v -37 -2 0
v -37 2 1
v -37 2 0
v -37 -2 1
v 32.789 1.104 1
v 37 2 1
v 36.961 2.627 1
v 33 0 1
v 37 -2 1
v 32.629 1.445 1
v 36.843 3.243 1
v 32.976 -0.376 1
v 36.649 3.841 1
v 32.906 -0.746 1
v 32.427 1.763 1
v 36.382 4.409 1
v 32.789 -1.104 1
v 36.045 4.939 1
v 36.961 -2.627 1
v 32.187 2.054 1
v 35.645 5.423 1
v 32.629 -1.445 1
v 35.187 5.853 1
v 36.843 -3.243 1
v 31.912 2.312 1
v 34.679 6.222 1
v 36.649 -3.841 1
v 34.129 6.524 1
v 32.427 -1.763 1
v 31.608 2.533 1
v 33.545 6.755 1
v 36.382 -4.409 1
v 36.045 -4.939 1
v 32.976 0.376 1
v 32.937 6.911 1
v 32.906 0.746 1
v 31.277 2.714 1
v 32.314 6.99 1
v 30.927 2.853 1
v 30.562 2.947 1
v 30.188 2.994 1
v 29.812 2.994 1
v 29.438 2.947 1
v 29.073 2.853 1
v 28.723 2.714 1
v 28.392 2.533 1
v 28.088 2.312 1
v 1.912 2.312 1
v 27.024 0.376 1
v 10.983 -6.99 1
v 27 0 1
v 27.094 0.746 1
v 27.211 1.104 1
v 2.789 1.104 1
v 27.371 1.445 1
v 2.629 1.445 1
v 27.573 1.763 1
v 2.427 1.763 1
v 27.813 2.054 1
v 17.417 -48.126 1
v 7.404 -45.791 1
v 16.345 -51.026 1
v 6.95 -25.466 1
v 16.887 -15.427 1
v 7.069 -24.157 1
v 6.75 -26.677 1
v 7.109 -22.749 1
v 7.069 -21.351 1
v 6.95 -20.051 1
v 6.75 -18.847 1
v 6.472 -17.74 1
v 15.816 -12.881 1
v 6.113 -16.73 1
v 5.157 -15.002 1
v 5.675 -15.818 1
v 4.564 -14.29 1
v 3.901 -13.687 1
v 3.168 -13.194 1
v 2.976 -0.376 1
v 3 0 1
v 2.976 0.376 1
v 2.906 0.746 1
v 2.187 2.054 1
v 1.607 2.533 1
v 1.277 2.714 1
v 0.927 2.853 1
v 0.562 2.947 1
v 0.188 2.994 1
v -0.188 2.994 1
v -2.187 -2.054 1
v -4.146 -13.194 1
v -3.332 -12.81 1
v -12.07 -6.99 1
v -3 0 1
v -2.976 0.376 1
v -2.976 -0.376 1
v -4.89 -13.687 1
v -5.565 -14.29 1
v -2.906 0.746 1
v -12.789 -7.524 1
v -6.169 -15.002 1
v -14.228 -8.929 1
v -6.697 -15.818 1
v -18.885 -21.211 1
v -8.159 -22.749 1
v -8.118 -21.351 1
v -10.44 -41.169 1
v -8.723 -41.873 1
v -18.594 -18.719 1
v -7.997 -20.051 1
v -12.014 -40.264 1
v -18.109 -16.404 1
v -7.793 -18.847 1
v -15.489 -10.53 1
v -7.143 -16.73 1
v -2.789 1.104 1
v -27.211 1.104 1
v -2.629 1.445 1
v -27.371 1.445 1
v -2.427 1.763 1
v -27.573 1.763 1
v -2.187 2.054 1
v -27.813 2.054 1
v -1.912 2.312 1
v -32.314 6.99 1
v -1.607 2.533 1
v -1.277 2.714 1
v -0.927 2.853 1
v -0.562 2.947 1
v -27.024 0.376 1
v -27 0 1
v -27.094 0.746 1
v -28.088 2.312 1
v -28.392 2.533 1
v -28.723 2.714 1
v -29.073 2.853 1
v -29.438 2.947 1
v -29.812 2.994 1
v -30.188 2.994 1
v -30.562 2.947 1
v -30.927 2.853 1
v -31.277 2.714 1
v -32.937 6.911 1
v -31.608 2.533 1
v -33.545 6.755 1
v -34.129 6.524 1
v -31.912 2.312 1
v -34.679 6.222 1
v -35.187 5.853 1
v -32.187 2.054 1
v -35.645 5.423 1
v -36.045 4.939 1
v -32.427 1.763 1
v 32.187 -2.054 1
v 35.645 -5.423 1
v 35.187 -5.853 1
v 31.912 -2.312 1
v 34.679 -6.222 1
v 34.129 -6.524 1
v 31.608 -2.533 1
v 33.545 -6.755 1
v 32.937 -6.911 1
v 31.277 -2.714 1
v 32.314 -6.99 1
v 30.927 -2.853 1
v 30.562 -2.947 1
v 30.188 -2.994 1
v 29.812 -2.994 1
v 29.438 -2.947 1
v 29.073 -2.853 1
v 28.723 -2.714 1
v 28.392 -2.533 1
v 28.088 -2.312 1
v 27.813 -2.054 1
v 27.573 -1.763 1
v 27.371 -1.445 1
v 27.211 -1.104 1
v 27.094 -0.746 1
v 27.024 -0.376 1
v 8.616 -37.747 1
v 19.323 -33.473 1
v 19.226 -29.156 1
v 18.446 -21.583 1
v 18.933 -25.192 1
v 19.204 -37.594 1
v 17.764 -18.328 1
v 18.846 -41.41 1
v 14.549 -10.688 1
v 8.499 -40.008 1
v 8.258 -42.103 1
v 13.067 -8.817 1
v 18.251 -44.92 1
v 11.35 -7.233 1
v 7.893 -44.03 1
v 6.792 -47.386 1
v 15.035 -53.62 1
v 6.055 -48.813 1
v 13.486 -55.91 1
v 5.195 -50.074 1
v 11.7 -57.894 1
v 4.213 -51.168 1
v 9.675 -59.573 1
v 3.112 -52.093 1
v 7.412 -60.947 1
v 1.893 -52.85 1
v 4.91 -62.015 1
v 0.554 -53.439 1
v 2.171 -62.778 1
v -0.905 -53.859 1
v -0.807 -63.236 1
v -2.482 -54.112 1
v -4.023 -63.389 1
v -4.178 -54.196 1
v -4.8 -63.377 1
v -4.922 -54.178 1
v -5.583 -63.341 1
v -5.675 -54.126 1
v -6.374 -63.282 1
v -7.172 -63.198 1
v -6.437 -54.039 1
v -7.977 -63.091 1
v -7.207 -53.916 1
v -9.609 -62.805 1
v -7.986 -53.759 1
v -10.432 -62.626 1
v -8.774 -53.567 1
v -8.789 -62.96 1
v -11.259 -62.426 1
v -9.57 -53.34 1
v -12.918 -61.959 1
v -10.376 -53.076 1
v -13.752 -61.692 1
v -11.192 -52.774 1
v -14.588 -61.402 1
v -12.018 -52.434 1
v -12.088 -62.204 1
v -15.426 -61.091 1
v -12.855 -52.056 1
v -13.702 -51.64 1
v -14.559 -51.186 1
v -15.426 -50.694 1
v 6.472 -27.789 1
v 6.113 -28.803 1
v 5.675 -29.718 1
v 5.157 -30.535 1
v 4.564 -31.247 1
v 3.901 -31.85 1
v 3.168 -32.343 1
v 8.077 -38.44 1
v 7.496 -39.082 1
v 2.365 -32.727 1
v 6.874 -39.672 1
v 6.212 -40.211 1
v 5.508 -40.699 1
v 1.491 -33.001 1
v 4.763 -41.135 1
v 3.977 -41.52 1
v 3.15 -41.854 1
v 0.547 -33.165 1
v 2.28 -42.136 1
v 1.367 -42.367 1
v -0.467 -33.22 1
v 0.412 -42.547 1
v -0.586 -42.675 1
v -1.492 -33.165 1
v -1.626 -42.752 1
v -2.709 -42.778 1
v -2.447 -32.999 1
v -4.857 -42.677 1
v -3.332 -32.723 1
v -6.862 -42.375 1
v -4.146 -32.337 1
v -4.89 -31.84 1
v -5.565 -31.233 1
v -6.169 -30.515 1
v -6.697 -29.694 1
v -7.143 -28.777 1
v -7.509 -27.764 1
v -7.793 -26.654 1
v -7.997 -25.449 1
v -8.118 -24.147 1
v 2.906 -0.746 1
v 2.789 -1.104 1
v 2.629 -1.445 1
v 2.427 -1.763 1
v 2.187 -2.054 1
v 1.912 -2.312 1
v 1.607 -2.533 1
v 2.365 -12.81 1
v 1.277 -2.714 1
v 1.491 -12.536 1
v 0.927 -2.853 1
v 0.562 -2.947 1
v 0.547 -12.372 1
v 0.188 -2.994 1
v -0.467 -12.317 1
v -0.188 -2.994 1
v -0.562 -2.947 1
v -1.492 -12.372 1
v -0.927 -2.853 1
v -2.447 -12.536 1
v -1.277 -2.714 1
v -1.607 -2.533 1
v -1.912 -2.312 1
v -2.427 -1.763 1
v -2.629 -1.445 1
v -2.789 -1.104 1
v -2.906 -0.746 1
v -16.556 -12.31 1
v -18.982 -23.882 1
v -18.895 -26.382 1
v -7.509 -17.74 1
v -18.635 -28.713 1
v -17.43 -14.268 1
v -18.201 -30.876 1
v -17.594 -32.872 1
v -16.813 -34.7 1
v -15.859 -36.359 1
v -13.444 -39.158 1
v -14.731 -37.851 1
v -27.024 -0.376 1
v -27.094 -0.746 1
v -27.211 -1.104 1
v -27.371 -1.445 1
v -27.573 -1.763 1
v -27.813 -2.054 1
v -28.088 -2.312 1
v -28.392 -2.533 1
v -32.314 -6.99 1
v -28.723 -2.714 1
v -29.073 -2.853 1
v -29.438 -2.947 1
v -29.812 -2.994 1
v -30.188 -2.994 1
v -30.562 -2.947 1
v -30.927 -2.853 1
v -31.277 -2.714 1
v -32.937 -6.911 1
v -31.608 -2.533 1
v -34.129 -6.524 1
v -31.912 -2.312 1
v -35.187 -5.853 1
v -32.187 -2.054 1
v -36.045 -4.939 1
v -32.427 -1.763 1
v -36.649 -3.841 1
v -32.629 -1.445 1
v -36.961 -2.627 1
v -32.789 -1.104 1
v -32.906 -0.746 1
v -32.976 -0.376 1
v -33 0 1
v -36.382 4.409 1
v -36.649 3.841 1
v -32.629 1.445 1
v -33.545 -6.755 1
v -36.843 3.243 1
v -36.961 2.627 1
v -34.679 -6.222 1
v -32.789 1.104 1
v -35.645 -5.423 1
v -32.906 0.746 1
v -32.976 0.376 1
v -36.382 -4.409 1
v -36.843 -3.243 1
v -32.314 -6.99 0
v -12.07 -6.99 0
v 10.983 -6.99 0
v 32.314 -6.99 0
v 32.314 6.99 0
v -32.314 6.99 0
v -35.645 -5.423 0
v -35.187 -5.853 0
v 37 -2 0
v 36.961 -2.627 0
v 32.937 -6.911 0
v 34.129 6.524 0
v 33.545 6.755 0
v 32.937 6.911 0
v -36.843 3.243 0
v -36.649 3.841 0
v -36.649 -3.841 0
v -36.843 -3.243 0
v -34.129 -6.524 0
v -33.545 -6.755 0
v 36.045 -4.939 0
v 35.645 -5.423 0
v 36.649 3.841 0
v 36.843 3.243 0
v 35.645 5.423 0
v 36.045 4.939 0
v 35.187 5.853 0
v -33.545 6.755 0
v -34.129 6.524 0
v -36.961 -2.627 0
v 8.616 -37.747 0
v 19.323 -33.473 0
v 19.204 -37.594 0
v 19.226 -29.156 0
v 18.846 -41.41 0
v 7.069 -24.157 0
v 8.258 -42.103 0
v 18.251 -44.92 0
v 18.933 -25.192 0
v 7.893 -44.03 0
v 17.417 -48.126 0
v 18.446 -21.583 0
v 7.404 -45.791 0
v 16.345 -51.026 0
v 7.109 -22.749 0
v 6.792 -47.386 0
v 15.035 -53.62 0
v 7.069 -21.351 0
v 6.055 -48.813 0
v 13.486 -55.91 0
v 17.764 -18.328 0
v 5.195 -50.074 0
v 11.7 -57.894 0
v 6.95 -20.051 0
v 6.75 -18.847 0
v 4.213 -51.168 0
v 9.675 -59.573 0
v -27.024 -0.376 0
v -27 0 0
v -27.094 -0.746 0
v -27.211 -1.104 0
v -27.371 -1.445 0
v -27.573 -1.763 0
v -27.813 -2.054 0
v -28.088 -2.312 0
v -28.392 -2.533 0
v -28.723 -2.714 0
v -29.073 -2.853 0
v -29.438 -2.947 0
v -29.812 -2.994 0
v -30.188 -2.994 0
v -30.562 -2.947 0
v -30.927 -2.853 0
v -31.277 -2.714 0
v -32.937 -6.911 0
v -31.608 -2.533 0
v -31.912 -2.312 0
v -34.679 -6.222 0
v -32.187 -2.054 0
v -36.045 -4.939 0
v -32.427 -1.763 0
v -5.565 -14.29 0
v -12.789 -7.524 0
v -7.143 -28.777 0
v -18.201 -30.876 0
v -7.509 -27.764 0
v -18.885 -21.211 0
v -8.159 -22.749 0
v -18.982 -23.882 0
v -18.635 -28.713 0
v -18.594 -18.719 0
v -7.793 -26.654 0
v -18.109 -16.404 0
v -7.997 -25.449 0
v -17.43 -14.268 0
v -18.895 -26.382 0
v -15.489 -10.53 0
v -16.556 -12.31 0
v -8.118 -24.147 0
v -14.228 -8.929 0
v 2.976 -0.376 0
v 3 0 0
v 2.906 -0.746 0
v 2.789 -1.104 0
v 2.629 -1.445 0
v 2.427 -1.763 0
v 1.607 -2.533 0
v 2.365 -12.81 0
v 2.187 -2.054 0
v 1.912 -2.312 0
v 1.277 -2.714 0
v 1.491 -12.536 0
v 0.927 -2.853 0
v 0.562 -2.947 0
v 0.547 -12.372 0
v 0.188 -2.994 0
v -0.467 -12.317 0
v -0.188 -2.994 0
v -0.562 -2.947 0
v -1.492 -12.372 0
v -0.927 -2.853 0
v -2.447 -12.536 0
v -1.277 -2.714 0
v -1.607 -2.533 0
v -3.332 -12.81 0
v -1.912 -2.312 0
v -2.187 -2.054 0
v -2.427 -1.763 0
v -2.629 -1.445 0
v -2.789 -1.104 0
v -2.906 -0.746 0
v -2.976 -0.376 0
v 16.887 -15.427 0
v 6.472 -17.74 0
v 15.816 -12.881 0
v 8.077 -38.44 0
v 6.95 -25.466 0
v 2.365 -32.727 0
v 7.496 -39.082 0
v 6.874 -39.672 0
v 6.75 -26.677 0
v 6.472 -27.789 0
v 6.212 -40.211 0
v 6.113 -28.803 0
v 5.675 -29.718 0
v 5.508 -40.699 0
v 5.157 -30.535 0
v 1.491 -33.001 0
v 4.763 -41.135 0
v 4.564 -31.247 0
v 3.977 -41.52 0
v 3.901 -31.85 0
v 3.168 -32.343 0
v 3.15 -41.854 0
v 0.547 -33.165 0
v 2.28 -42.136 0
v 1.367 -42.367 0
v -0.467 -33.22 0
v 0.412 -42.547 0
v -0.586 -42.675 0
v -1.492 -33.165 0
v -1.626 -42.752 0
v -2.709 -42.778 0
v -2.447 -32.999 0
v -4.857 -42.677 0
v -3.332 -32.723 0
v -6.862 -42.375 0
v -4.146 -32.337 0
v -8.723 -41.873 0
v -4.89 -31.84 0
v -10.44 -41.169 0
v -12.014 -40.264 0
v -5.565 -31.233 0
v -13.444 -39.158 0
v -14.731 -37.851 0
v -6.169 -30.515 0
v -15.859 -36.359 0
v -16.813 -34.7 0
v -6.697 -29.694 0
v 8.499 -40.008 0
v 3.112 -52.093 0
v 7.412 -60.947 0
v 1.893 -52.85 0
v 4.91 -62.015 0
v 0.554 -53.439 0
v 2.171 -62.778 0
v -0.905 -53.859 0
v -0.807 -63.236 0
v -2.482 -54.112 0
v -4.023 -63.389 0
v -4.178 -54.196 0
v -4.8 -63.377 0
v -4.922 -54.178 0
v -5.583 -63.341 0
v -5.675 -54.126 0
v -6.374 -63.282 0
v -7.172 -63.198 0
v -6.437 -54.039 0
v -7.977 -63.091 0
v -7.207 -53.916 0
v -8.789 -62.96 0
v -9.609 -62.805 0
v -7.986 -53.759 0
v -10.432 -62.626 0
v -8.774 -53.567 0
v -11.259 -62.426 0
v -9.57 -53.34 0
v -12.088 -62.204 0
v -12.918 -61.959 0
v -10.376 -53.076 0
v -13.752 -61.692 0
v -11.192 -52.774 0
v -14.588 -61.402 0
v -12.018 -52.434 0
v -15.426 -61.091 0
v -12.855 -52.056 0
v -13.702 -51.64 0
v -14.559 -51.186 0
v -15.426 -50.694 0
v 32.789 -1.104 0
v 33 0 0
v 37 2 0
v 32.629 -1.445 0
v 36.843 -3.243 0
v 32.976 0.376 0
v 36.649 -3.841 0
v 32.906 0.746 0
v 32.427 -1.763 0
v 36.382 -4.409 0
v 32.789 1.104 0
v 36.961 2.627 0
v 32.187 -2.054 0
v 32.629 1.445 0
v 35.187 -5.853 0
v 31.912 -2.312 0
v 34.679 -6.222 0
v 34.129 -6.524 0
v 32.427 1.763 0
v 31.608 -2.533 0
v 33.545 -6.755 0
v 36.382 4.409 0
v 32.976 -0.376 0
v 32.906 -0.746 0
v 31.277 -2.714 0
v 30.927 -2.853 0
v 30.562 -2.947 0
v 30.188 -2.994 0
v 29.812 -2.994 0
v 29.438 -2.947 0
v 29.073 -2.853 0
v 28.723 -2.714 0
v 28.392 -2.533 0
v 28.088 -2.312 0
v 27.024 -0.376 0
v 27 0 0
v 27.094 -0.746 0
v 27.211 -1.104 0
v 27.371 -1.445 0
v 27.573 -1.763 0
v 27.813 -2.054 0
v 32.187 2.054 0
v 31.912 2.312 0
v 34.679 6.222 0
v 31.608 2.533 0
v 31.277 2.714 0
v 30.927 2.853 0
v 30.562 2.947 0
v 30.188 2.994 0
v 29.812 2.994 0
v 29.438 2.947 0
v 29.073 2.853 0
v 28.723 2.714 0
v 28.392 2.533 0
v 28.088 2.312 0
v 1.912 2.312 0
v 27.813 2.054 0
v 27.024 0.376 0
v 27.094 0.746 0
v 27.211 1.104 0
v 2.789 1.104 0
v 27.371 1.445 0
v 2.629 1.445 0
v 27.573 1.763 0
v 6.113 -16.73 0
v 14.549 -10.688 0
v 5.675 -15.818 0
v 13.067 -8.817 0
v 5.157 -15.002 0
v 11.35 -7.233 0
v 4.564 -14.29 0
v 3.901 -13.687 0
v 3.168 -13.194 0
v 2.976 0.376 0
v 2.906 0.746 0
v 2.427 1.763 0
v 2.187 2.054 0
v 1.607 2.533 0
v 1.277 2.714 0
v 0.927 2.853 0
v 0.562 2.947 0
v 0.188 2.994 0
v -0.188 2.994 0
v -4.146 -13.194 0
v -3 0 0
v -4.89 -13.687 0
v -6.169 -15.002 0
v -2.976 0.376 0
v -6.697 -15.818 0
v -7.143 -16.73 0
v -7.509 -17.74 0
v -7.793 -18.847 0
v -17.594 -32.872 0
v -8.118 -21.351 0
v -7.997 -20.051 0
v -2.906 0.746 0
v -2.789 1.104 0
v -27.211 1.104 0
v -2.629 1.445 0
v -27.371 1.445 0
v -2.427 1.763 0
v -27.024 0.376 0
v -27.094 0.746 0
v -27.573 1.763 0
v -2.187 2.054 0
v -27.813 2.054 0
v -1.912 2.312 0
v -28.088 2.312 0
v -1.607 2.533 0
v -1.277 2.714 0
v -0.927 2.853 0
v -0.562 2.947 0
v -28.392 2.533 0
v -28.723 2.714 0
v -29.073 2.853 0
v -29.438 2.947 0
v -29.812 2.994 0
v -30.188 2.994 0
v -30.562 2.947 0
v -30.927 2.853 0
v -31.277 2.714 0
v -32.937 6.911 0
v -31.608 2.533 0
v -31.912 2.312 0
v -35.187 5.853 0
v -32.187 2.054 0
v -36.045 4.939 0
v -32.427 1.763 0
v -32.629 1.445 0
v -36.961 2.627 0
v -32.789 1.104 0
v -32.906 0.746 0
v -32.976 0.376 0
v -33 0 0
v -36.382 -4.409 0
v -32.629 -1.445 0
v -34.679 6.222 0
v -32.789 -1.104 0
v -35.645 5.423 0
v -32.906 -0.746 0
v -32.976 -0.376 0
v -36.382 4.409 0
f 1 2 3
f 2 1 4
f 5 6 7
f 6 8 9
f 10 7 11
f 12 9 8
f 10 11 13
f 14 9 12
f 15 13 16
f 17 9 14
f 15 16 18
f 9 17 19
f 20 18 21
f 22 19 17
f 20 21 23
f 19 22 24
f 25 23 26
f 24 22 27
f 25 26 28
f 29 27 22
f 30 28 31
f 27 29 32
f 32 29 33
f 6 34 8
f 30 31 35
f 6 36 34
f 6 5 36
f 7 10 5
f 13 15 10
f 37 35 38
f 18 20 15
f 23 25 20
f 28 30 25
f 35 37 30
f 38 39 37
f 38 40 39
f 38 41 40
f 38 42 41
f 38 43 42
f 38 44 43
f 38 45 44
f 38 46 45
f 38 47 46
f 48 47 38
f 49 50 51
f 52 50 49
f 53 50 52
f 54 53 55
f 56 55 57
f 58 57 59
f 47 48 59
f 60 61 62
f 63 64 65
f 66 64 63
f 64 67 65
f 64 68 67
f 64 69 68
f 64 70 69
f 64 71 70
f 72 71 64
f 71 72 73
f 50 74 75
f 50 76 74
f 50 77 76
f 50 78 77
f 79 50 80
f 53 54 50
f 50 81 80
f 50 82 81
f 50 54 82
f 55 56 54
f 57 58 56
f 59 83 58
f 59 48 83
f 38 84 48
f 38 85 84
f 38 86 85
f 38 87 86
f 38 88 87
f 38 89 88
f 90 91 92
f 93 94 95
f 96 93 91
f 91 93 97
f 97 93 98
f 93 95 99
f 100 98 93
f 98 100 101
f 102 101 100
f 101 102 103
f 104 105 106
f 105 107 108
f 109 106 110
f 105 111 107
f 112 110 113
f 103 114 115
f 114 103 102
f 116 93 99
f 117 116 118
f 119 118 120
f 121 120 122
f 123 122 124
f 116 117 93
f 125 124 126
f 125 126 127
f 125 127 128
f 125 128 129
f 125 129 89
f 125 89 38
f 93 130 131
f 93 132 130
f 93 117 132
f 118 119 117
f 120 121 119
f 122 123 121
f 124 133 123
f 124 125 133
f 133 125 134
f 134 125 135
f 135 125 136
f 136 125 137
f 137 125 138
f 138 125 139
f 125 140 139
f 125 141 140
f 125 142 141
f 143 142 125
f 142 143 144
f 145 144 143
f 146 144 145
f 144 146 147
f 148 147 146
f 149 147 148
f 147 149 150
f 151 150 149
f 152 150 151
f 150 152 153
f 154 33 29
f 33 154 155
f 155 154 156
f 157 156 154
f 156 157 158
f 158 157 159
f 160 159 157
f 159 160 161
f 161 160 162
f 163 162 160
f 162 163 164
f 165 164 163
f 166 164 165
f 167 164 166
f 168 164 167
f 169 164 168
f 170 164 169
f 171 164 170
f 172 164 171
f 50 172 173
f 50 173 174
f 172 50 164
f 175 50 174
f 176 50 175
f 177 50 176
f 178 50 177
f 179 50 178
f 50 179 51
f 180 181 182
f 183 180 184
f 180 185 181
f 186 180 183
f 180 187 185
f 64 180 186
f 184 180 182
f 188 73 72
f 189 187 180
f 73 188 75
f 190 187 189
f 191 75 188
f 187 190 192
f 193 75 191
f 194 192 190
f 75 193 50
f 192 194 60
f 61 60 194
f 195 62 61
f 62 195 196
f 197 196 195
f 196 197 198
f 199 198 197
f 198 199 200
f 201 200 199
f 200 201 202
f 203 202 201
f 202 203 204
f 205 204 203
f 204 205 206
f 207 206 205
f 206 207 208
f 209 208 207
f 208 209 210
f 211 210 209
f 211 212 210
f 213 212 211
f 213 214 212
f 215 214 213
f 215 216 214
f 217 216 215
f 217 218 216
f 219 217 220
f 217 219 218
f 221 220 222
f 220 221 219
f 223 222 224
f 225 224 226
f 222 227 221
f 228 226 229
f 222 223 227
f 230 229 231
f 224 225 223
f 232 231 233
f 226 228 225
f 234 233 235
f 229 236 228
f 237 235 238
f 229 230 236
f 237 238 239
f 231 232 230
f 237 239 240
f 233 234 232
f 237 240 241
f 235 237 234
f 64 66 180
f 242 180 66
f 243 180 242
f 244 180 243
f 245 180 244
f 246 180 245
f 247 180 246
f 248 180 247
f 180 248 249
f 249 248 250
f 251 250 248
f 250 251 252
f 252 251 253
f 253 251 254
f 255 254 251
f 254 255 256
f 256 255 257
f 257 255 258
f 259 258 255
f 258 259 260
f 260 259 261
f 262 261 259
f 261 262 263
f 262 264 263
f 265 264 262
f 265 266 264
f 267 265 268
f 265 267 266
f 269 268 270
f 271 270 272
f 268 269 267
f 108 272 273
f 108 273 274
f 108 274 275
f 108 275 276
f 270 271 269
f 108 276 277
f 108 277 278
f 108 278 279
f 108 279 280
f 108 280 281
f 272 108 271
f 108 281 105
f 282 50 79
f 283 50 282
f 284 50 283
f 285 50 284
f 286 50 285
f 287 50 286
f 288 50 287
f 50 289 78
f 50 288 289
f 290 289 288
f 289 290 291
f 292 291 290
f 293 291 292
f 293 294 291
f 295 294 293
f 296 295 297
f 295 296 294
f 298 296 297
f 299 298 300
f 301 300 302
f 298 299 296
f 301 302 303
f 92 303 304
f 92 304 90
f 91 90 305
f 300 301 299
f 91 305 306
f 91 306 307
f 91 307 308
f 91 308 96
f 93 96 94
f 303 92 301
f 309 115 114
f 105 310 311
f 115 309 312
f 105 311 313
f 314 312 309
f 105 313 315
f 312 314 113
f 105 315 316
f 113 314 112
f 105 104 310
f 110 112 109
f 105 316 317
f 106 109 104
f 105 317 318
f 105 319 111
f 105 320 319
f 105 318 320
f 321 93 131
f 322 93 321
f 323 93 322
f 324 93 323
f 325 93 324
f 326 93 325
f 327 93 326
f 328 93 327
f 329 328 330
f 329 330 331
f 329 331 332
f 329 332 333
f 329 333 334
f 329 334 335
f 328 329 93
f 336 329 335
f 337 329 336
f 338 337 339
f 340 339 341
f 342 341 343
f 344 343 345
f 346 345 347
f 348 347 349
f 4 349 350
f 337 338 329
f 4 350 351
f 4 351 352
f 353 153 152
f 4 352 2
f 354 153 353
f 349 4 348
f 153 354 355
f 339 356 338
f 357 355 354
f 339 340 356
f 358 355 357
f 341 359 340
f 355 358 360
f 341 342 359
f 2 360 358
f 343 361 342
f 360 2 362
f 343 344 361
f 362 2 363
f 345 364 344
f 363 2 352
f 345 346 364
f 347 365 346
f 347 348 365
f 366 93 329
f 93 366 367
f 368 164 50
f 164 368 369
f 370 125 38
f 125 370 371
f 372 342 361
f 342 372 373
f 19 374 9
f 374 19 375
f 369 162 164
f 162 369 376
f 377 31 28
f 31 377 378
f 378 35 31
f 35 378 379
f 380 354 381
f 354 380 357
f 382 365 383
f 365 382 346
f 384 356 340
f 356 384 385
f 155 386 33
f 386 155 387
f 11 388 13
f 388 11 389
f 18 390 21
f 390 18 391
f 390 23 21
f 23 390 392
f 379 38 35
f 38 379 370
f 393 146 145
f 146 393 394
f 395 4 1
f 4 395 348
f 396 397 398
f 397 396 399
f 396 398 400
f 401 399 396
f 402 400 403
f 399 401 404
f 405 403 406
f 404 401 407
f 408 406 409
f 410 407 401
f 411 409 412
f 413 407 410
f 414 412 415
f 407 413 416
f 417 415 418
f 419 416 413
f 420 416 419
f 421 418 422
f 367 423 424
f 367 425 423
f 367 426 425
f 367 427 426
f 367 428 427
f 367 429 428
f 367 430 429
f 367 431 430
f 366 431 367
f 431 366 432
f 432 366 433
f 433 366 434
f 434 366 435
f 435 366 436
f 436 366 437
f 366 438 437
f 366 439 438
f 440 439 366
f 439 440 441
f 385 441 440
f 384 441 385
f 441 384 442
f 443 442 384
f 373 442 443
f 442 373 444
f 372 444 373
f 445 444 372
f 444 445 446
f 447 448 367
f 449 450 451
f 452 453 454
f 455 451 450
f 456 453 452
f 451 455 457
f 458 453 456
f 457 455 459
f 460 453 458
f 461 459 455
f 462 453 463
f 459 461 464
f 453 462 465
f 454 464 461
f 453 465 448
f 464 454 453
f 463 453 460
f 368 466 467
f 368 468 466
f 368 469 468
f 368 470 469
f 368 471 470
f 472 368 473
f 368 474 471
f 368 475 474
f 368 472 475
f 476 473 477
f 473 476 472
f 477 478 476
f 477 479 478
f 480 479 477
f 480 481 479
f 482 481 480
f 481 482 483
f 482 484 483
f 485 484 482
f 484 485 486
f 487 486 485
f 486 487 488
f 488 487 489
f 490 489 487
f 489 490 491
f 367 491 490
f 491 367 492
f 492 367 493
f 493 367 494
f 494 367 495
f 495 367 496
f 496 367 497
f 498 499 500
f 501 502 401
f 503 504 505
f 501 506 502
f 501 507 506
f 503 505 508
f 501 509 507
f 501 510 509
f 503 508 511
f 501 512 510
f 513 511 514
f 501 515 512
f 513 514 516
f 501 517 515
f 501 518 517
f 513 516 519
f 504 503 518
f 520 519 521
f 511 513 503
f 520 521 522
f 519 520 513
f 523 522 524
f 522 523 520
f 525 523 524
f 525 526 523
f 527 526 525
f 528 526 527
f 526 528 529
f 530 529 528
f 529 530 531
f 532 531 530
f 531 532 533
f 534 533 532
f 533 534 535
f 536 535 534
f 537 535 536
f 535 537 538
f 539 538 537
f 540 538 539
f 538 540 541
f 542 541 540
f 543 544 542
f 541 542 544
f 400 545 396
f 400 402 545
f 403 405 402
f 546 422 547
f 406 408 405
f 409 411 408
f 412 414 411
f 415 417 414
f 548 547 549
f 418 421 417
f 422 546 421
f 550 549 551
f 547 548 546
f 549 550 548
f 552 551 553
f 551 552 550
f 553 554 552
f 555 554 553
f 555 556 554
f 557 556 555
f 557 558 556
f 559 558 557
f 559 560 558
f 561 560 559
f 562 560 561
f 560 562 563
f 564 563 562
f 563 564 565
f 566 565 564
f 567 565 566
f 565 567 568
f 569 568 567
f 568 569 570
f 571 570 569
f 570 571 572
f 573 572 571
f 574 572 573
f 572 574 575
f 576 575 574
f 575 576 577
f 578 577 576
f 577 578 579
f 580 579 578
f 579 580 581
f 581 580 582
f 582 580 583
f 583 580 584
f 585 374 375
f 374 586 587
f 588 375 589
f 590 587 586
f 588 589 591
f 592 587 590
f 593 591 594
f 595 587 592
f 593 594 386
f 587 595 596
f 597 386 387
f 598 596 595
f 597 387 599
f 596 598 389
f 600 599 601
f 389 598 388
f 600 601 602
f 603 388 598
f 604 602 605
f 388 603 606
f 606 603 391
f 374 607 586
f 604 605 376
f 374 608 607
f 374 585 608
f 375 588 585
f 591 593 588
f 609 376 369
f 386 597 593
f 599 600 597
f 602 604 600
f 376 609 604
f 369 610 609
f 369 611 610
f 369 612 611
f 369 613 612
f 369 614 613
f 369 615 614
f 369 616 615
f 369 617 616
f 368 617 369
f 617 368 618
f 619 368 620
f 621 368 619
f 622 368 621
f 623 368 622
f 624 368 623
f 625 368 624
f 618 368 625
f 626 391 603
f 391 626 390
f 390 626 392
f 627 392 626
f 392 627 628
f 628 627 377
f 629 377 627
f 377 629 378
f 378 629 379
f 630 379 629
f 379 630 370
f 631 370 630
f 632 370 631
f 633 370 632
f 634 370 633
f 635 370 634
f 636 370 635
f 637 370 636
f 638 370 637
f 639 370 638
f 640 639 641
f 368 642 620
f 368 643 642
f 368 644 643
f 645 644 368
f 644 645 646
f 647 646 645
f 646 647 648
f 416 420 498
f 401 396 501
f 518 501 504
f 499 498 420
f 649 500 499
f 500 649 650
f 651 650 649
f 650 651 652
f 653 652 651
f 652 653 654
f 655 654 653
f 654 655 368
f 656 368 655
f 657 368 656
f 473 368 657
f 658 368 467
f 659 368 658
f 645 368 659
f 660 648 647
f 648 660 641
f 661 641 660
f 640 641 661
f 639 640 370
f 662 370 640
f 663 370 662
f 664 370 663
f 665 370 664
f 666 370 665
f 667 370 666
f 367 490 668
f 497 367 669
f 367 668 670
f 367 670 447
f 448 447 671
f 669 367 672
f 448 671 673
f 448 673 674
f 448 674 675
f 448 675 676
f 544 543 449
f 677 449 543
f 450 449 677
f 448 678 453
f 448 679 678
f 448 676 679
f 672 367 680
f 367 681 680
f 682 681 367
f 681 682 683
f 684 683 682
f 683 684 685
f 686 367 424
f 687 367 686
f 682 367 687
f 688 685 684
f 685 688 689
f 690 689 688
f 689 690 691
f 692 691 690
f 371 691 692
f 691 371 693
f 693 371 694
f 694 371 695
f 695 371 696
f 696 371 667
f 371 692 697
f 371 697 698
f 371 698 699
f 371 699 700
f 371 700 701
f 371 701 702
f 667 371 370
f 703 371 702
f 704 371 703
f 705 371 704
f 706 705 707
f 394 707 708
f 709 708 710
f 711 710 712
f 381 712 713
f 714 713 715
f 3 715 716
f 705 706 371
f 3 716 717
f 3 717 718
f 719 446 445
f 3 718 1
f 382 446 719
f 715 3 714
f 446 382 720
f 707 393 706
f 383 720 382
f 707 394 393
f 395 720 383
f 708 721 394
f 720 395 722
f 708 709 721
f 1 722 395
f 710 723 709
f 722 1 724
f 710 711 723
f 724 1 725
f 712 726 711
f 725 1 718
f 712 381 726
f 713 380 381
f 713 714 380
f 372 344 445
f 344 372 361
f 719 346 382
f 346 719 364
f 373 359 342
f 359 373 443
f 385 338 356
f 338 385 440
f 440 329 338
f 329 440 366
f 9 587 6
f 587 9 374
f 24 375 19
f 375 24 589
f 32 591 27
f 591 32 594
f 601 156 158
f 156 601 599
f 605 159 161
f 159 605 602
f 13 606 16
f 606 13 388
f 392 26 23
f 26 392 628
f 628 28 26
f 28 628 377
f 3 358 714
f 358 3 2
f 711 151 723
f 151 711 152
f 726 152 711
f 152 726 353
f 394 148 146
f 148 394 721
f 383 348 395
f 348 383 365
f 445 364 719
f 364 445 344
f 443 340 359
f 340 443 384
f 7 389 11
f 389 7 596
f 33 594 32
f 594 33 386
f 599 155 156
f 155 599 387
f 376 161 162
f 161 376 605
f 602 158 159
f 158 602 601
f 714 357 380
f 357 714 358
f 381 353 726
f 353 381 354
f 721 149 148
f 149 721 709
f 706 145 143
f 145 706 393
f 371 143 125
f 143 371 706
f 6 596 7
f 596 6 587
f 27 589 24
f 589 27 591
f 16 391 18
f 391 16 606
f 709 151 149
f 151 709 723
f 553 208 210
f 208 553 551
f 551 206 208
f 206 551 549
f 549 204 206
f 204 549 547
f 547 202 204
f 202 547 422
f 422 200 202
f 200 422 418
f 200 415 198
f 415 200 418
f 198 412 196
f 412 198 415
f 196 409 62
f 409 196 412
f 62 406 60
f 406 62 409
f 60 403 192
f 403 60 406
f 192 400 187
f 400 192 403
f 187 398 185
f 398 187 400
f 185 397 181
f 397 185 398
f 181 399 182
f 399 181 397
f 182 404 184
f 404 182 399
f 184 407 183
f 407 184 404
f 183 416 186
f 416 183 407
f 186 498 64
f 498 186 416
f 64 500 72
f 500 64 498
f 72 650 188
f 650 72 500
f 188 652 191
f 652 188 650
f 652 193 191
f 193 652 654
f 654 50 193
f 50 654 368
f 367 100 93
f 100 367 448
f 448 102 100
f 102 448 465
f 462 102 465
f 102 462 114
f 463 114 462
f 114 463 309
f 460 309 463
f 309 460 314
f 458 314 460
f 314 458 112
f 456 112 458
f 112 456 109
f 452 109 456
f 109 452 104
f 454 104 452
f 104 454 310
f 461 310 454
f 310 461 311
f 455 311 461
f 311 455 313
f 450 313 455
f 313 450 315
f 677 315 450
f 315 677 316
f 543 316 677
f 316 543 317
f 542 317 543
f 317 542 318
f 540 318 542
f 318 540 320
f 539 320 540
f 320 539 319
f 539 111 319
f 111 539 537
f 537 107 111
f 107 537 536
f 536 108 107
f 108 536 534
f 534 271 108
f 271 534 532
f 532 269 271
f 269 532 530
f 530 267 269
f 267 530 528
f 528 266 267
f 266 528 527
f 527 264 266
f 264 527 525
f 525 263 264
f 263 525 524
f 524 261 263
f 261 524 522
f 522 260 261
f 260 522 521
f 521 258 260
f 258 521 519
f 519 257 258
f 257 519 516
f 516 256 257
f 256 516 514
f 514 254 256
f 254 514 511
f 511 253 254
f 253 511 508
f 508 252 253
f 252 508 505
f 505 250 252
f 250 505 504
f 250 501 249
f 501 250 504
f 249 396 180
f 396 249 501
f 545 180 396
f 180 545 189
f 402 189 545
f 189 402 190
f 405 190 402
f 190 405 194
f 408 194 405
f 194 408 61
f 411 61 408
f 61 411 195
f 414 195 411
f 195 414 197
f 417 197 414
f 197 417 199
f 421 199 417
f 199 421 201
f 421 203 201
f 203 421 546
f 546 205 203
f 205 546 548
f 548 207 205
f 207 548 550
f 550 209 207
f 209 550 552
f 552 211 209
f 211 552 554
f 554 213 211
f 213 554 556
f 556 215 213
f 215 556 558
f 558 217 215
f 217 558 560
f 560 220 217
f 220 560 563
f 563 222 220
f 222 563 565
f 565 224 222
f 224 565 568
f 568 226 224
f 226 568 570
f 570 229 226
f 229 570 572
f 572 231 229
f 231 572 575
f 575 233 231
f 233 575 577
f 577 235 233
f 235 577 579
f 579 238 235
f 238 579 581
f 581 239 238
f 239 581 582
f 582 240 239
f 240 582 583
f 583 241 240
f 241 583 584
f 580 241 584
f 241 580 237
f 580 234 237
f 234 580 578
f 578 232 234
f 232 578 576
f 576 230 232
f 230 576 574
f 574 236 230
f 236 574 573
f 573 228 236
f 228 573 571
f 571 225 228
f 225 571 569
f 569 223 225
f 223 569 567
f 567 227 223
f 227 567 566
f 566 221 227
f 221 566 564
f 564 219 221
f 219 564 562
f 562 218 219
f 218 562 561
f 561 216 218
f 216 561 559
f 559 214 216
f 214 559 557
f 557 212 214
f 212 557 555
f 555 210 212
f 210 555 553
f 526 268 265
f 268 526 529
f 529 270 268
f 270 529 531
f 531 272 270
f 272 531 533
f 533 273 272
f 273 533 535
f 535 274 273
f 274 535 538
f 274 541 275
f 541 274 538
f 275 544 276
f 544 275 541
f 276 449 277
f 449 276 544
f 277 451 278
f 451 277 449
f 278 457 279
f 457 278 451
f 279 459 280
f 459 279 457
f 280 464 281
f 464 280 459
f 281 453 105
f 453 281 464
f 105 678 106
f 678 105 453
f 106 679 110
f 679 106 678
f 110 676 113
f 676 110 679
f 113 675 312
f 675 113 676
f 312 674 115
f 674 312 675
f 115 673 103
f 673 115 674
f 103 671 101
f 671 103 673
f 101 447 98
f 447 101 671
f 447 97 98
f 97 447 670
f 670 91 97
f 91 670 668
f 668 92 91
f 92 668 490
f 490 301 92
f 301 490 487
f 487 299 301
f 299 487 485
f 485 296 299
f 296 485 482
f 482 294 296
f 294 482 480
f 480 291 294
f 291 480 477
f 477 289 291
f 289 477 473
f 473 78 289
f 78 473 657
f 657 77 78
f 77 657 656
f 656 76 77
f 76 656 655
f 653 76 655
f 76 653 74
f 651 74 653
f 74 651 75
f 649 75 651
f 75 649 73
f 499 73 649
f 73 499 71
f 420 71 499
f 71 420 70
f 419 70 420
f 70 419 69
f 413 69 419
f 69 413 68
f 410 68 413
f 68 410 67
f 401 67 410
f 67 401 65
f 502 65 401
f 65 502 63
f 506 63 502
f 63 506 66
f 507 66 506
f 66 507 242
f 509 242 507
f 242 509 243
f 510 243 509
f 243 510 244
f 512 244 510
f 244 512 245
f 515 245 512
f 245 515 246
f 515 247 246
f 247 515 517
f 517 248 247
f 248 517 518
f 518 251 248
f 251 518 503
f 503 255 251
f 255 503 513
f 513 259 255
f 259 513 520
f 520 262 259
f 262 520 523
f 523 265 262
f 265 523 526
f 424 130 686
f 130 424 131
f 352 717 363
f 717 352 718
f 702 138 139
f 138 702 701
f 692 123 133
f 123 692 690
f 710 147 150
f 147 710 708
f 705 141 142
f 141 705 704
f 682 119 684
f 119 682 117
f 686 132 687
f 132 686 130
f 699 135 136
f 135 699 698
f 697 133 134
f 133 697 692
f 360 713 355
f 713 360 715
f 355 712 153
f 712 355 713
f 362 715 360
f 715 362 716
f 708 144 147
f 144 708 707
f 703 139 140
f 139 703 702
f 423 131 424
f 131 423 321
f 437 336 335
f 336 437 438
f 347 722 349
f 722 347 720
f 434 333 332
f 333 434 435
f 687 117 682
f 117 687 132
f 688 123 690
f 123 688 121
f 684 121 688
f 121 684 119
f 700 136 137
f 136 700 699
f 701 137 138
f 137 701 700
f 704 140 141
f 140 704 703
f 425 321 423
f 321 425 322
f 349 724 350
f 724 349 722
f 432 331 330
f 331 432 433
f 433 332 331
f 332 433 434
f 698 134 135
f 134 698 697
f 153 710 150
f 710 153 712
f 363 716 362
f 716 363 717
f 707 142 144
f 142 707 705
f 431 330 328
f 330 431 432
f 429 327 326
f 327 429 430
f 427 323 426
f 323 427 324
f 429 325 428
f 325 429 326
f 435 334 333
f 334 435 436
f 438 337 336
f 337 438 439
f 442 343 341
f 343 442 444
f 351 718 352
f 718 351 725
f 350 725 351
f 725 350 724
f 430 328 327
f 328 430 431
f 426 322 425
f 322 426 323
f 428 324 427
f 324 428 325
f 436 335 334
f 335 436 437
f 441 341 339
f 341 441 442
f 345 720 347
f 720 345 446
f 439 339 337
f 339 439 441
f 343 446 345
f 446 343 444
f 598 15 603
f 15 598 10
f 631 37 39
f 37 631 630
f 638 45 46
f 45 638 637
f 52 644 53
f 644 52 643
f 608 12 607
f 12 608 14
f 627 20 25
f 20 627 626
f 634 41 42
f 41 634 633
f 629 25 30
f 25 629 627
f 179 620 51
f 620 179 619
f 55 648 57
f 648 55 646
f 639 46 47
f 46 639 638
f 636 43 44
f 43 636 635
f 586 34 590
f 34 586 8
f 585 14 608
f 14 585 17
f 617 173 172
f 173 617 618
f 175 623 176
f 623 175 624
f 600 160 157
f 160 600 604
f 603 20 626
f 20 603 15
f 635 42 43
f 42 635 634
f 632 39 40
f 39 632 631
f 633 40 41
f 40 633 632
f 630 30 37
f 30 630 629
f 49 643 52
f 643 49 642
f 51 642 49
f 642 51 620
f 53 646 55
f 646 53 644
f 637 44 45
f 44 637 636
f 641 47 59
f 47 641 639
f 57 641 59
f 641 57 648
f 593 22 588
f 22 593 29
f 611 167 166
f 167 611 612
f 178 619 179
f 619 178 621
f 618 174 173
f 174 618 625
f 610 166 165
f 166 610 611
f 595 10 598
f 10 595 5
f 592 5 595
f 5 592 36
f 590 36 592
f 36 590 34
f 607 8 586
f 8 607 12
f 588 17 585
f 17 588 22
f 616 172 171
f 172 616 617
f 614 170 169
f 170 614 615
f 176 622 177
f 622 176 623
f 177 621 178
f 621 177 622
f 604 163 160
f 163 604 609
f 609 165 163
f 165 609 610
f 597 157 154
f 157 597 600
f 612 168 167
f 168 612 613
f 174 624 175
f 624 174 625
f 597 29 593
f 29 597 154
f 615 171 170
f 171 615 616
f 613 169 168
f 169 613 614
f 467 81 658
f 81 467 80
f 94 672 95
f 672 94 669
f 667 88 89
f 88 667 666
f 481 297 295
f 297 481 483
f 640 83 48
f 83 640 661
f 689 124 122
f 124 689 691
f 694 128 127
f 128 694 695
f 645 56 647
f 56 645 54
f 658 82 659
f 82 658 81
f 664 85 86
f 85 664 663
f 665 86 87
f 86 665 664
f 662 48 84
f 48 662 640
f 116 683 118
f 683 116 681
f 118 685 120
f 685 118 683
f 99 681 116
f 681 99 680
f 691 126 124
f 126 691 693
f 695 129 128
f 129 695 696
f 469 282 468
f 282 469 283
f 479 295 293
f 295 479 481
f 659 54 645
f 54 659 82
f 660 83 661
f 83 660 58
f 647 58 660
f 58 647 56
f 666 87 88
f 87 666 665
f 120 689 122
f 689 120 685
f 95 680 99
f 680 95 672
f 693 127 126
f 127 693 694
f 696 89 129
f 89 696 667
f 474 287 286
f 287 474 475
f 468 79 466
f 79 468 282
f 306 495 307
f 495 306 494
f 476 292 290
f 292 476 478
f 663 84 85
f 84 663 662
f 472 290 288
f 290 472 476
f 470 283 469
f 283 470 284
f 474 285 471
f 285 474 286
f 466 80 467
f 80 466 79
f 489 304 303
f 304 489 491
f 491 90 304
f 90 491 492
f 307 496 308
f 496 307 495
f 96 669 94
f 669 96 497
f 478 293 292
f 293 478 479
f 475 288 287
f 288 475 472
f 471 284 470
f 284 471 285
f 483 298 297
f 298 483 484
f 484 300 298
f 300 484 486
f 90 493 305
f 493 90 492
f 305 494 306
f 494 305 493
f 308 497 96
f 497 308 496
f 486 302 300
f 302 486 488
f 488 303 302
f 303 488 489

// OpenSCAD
$fn = 50;


difference() {
	union() {
		translate(v = [0, 0, 0]) {
			rotate(a = [0, 0, 0]) {
				hull() {
					translate(v = [-32.0000000000, 2.0000000000, 0]) {
						rotate(a = [0, 0, 0]) {
							translate(v = [0, 0, 0]) {
								rotate(a = [0, 0, 0]) {
									cylinder(h = 1, r = 5);
								}
							}
						}
					}
					translate(v = [32.0000000000, 2.0000000000, 0]) {
						rotate(a = [0, 0, 0]) {
							translate(v = [0, 0, 0]) {
								rotate(a = [0, 0, 0]) {
									cylinder(h = 1, r = 5);
								}
							}
						}
					}
					translate(v = [-32.0000000000, -2.0000000000, 0]) {
						rotate(a = [0, 0, 0]) {
							translate(v = [0, 0, 0]) {
								rotate(a = [0, 0, 0]) {
									cylinder(h = 1, r = 5);
								}
							}
						}
					}
					translate(v = [32.0000000000, -2.0000000000, 0]) {
						rotate(a = [0, 0, 0]) {
							translate(v = [0, 0, 0]) {
								rotate(a = [0, 0, 0]) {
									cylinder(h = 1, r = 5);
								}
							}
						}
					}
				}
			}
		}
		translate(v = [0, -5, 0]) {
			rotate(a = [0, 0, 0]) {
				linear_extrude(height = 1) {
					text(font = "DejaVu Sans Mono:style=Bold", halign = "center", size = 57.0000000000, text = "9", valign = "top");
				}
			}
		}
	}
	union() {
		translate(v = [-30.0000000000, 0.0000000000, -125.0000000000]) {
			rotate(a = [0, 0, 0]) {
				cylinder(h = 250, r = 3.0000000000);
			}
		}
		translate(v = [30.0000000000, 0.0000000000, -125.0000000000]) {
			rotate(a = [0, 0, 0]) {
				cylinder(h = 250, r = 3.0000000000);
			}
		}
		translate(v = [30.0000000000, 0.0000000000, -125.0000000000]) {
			rotate(a = [0, 0, 0]) {
				cylinder(h = 250, r = 3.0000000000);
			}
		}
		translate(v = [0, 0, -125.0000000000]) {
			rotate(a = [0, 0, 0]) {
				cylinder(h = 250, r = 3.0000000000);
			}
		}
	}
}
